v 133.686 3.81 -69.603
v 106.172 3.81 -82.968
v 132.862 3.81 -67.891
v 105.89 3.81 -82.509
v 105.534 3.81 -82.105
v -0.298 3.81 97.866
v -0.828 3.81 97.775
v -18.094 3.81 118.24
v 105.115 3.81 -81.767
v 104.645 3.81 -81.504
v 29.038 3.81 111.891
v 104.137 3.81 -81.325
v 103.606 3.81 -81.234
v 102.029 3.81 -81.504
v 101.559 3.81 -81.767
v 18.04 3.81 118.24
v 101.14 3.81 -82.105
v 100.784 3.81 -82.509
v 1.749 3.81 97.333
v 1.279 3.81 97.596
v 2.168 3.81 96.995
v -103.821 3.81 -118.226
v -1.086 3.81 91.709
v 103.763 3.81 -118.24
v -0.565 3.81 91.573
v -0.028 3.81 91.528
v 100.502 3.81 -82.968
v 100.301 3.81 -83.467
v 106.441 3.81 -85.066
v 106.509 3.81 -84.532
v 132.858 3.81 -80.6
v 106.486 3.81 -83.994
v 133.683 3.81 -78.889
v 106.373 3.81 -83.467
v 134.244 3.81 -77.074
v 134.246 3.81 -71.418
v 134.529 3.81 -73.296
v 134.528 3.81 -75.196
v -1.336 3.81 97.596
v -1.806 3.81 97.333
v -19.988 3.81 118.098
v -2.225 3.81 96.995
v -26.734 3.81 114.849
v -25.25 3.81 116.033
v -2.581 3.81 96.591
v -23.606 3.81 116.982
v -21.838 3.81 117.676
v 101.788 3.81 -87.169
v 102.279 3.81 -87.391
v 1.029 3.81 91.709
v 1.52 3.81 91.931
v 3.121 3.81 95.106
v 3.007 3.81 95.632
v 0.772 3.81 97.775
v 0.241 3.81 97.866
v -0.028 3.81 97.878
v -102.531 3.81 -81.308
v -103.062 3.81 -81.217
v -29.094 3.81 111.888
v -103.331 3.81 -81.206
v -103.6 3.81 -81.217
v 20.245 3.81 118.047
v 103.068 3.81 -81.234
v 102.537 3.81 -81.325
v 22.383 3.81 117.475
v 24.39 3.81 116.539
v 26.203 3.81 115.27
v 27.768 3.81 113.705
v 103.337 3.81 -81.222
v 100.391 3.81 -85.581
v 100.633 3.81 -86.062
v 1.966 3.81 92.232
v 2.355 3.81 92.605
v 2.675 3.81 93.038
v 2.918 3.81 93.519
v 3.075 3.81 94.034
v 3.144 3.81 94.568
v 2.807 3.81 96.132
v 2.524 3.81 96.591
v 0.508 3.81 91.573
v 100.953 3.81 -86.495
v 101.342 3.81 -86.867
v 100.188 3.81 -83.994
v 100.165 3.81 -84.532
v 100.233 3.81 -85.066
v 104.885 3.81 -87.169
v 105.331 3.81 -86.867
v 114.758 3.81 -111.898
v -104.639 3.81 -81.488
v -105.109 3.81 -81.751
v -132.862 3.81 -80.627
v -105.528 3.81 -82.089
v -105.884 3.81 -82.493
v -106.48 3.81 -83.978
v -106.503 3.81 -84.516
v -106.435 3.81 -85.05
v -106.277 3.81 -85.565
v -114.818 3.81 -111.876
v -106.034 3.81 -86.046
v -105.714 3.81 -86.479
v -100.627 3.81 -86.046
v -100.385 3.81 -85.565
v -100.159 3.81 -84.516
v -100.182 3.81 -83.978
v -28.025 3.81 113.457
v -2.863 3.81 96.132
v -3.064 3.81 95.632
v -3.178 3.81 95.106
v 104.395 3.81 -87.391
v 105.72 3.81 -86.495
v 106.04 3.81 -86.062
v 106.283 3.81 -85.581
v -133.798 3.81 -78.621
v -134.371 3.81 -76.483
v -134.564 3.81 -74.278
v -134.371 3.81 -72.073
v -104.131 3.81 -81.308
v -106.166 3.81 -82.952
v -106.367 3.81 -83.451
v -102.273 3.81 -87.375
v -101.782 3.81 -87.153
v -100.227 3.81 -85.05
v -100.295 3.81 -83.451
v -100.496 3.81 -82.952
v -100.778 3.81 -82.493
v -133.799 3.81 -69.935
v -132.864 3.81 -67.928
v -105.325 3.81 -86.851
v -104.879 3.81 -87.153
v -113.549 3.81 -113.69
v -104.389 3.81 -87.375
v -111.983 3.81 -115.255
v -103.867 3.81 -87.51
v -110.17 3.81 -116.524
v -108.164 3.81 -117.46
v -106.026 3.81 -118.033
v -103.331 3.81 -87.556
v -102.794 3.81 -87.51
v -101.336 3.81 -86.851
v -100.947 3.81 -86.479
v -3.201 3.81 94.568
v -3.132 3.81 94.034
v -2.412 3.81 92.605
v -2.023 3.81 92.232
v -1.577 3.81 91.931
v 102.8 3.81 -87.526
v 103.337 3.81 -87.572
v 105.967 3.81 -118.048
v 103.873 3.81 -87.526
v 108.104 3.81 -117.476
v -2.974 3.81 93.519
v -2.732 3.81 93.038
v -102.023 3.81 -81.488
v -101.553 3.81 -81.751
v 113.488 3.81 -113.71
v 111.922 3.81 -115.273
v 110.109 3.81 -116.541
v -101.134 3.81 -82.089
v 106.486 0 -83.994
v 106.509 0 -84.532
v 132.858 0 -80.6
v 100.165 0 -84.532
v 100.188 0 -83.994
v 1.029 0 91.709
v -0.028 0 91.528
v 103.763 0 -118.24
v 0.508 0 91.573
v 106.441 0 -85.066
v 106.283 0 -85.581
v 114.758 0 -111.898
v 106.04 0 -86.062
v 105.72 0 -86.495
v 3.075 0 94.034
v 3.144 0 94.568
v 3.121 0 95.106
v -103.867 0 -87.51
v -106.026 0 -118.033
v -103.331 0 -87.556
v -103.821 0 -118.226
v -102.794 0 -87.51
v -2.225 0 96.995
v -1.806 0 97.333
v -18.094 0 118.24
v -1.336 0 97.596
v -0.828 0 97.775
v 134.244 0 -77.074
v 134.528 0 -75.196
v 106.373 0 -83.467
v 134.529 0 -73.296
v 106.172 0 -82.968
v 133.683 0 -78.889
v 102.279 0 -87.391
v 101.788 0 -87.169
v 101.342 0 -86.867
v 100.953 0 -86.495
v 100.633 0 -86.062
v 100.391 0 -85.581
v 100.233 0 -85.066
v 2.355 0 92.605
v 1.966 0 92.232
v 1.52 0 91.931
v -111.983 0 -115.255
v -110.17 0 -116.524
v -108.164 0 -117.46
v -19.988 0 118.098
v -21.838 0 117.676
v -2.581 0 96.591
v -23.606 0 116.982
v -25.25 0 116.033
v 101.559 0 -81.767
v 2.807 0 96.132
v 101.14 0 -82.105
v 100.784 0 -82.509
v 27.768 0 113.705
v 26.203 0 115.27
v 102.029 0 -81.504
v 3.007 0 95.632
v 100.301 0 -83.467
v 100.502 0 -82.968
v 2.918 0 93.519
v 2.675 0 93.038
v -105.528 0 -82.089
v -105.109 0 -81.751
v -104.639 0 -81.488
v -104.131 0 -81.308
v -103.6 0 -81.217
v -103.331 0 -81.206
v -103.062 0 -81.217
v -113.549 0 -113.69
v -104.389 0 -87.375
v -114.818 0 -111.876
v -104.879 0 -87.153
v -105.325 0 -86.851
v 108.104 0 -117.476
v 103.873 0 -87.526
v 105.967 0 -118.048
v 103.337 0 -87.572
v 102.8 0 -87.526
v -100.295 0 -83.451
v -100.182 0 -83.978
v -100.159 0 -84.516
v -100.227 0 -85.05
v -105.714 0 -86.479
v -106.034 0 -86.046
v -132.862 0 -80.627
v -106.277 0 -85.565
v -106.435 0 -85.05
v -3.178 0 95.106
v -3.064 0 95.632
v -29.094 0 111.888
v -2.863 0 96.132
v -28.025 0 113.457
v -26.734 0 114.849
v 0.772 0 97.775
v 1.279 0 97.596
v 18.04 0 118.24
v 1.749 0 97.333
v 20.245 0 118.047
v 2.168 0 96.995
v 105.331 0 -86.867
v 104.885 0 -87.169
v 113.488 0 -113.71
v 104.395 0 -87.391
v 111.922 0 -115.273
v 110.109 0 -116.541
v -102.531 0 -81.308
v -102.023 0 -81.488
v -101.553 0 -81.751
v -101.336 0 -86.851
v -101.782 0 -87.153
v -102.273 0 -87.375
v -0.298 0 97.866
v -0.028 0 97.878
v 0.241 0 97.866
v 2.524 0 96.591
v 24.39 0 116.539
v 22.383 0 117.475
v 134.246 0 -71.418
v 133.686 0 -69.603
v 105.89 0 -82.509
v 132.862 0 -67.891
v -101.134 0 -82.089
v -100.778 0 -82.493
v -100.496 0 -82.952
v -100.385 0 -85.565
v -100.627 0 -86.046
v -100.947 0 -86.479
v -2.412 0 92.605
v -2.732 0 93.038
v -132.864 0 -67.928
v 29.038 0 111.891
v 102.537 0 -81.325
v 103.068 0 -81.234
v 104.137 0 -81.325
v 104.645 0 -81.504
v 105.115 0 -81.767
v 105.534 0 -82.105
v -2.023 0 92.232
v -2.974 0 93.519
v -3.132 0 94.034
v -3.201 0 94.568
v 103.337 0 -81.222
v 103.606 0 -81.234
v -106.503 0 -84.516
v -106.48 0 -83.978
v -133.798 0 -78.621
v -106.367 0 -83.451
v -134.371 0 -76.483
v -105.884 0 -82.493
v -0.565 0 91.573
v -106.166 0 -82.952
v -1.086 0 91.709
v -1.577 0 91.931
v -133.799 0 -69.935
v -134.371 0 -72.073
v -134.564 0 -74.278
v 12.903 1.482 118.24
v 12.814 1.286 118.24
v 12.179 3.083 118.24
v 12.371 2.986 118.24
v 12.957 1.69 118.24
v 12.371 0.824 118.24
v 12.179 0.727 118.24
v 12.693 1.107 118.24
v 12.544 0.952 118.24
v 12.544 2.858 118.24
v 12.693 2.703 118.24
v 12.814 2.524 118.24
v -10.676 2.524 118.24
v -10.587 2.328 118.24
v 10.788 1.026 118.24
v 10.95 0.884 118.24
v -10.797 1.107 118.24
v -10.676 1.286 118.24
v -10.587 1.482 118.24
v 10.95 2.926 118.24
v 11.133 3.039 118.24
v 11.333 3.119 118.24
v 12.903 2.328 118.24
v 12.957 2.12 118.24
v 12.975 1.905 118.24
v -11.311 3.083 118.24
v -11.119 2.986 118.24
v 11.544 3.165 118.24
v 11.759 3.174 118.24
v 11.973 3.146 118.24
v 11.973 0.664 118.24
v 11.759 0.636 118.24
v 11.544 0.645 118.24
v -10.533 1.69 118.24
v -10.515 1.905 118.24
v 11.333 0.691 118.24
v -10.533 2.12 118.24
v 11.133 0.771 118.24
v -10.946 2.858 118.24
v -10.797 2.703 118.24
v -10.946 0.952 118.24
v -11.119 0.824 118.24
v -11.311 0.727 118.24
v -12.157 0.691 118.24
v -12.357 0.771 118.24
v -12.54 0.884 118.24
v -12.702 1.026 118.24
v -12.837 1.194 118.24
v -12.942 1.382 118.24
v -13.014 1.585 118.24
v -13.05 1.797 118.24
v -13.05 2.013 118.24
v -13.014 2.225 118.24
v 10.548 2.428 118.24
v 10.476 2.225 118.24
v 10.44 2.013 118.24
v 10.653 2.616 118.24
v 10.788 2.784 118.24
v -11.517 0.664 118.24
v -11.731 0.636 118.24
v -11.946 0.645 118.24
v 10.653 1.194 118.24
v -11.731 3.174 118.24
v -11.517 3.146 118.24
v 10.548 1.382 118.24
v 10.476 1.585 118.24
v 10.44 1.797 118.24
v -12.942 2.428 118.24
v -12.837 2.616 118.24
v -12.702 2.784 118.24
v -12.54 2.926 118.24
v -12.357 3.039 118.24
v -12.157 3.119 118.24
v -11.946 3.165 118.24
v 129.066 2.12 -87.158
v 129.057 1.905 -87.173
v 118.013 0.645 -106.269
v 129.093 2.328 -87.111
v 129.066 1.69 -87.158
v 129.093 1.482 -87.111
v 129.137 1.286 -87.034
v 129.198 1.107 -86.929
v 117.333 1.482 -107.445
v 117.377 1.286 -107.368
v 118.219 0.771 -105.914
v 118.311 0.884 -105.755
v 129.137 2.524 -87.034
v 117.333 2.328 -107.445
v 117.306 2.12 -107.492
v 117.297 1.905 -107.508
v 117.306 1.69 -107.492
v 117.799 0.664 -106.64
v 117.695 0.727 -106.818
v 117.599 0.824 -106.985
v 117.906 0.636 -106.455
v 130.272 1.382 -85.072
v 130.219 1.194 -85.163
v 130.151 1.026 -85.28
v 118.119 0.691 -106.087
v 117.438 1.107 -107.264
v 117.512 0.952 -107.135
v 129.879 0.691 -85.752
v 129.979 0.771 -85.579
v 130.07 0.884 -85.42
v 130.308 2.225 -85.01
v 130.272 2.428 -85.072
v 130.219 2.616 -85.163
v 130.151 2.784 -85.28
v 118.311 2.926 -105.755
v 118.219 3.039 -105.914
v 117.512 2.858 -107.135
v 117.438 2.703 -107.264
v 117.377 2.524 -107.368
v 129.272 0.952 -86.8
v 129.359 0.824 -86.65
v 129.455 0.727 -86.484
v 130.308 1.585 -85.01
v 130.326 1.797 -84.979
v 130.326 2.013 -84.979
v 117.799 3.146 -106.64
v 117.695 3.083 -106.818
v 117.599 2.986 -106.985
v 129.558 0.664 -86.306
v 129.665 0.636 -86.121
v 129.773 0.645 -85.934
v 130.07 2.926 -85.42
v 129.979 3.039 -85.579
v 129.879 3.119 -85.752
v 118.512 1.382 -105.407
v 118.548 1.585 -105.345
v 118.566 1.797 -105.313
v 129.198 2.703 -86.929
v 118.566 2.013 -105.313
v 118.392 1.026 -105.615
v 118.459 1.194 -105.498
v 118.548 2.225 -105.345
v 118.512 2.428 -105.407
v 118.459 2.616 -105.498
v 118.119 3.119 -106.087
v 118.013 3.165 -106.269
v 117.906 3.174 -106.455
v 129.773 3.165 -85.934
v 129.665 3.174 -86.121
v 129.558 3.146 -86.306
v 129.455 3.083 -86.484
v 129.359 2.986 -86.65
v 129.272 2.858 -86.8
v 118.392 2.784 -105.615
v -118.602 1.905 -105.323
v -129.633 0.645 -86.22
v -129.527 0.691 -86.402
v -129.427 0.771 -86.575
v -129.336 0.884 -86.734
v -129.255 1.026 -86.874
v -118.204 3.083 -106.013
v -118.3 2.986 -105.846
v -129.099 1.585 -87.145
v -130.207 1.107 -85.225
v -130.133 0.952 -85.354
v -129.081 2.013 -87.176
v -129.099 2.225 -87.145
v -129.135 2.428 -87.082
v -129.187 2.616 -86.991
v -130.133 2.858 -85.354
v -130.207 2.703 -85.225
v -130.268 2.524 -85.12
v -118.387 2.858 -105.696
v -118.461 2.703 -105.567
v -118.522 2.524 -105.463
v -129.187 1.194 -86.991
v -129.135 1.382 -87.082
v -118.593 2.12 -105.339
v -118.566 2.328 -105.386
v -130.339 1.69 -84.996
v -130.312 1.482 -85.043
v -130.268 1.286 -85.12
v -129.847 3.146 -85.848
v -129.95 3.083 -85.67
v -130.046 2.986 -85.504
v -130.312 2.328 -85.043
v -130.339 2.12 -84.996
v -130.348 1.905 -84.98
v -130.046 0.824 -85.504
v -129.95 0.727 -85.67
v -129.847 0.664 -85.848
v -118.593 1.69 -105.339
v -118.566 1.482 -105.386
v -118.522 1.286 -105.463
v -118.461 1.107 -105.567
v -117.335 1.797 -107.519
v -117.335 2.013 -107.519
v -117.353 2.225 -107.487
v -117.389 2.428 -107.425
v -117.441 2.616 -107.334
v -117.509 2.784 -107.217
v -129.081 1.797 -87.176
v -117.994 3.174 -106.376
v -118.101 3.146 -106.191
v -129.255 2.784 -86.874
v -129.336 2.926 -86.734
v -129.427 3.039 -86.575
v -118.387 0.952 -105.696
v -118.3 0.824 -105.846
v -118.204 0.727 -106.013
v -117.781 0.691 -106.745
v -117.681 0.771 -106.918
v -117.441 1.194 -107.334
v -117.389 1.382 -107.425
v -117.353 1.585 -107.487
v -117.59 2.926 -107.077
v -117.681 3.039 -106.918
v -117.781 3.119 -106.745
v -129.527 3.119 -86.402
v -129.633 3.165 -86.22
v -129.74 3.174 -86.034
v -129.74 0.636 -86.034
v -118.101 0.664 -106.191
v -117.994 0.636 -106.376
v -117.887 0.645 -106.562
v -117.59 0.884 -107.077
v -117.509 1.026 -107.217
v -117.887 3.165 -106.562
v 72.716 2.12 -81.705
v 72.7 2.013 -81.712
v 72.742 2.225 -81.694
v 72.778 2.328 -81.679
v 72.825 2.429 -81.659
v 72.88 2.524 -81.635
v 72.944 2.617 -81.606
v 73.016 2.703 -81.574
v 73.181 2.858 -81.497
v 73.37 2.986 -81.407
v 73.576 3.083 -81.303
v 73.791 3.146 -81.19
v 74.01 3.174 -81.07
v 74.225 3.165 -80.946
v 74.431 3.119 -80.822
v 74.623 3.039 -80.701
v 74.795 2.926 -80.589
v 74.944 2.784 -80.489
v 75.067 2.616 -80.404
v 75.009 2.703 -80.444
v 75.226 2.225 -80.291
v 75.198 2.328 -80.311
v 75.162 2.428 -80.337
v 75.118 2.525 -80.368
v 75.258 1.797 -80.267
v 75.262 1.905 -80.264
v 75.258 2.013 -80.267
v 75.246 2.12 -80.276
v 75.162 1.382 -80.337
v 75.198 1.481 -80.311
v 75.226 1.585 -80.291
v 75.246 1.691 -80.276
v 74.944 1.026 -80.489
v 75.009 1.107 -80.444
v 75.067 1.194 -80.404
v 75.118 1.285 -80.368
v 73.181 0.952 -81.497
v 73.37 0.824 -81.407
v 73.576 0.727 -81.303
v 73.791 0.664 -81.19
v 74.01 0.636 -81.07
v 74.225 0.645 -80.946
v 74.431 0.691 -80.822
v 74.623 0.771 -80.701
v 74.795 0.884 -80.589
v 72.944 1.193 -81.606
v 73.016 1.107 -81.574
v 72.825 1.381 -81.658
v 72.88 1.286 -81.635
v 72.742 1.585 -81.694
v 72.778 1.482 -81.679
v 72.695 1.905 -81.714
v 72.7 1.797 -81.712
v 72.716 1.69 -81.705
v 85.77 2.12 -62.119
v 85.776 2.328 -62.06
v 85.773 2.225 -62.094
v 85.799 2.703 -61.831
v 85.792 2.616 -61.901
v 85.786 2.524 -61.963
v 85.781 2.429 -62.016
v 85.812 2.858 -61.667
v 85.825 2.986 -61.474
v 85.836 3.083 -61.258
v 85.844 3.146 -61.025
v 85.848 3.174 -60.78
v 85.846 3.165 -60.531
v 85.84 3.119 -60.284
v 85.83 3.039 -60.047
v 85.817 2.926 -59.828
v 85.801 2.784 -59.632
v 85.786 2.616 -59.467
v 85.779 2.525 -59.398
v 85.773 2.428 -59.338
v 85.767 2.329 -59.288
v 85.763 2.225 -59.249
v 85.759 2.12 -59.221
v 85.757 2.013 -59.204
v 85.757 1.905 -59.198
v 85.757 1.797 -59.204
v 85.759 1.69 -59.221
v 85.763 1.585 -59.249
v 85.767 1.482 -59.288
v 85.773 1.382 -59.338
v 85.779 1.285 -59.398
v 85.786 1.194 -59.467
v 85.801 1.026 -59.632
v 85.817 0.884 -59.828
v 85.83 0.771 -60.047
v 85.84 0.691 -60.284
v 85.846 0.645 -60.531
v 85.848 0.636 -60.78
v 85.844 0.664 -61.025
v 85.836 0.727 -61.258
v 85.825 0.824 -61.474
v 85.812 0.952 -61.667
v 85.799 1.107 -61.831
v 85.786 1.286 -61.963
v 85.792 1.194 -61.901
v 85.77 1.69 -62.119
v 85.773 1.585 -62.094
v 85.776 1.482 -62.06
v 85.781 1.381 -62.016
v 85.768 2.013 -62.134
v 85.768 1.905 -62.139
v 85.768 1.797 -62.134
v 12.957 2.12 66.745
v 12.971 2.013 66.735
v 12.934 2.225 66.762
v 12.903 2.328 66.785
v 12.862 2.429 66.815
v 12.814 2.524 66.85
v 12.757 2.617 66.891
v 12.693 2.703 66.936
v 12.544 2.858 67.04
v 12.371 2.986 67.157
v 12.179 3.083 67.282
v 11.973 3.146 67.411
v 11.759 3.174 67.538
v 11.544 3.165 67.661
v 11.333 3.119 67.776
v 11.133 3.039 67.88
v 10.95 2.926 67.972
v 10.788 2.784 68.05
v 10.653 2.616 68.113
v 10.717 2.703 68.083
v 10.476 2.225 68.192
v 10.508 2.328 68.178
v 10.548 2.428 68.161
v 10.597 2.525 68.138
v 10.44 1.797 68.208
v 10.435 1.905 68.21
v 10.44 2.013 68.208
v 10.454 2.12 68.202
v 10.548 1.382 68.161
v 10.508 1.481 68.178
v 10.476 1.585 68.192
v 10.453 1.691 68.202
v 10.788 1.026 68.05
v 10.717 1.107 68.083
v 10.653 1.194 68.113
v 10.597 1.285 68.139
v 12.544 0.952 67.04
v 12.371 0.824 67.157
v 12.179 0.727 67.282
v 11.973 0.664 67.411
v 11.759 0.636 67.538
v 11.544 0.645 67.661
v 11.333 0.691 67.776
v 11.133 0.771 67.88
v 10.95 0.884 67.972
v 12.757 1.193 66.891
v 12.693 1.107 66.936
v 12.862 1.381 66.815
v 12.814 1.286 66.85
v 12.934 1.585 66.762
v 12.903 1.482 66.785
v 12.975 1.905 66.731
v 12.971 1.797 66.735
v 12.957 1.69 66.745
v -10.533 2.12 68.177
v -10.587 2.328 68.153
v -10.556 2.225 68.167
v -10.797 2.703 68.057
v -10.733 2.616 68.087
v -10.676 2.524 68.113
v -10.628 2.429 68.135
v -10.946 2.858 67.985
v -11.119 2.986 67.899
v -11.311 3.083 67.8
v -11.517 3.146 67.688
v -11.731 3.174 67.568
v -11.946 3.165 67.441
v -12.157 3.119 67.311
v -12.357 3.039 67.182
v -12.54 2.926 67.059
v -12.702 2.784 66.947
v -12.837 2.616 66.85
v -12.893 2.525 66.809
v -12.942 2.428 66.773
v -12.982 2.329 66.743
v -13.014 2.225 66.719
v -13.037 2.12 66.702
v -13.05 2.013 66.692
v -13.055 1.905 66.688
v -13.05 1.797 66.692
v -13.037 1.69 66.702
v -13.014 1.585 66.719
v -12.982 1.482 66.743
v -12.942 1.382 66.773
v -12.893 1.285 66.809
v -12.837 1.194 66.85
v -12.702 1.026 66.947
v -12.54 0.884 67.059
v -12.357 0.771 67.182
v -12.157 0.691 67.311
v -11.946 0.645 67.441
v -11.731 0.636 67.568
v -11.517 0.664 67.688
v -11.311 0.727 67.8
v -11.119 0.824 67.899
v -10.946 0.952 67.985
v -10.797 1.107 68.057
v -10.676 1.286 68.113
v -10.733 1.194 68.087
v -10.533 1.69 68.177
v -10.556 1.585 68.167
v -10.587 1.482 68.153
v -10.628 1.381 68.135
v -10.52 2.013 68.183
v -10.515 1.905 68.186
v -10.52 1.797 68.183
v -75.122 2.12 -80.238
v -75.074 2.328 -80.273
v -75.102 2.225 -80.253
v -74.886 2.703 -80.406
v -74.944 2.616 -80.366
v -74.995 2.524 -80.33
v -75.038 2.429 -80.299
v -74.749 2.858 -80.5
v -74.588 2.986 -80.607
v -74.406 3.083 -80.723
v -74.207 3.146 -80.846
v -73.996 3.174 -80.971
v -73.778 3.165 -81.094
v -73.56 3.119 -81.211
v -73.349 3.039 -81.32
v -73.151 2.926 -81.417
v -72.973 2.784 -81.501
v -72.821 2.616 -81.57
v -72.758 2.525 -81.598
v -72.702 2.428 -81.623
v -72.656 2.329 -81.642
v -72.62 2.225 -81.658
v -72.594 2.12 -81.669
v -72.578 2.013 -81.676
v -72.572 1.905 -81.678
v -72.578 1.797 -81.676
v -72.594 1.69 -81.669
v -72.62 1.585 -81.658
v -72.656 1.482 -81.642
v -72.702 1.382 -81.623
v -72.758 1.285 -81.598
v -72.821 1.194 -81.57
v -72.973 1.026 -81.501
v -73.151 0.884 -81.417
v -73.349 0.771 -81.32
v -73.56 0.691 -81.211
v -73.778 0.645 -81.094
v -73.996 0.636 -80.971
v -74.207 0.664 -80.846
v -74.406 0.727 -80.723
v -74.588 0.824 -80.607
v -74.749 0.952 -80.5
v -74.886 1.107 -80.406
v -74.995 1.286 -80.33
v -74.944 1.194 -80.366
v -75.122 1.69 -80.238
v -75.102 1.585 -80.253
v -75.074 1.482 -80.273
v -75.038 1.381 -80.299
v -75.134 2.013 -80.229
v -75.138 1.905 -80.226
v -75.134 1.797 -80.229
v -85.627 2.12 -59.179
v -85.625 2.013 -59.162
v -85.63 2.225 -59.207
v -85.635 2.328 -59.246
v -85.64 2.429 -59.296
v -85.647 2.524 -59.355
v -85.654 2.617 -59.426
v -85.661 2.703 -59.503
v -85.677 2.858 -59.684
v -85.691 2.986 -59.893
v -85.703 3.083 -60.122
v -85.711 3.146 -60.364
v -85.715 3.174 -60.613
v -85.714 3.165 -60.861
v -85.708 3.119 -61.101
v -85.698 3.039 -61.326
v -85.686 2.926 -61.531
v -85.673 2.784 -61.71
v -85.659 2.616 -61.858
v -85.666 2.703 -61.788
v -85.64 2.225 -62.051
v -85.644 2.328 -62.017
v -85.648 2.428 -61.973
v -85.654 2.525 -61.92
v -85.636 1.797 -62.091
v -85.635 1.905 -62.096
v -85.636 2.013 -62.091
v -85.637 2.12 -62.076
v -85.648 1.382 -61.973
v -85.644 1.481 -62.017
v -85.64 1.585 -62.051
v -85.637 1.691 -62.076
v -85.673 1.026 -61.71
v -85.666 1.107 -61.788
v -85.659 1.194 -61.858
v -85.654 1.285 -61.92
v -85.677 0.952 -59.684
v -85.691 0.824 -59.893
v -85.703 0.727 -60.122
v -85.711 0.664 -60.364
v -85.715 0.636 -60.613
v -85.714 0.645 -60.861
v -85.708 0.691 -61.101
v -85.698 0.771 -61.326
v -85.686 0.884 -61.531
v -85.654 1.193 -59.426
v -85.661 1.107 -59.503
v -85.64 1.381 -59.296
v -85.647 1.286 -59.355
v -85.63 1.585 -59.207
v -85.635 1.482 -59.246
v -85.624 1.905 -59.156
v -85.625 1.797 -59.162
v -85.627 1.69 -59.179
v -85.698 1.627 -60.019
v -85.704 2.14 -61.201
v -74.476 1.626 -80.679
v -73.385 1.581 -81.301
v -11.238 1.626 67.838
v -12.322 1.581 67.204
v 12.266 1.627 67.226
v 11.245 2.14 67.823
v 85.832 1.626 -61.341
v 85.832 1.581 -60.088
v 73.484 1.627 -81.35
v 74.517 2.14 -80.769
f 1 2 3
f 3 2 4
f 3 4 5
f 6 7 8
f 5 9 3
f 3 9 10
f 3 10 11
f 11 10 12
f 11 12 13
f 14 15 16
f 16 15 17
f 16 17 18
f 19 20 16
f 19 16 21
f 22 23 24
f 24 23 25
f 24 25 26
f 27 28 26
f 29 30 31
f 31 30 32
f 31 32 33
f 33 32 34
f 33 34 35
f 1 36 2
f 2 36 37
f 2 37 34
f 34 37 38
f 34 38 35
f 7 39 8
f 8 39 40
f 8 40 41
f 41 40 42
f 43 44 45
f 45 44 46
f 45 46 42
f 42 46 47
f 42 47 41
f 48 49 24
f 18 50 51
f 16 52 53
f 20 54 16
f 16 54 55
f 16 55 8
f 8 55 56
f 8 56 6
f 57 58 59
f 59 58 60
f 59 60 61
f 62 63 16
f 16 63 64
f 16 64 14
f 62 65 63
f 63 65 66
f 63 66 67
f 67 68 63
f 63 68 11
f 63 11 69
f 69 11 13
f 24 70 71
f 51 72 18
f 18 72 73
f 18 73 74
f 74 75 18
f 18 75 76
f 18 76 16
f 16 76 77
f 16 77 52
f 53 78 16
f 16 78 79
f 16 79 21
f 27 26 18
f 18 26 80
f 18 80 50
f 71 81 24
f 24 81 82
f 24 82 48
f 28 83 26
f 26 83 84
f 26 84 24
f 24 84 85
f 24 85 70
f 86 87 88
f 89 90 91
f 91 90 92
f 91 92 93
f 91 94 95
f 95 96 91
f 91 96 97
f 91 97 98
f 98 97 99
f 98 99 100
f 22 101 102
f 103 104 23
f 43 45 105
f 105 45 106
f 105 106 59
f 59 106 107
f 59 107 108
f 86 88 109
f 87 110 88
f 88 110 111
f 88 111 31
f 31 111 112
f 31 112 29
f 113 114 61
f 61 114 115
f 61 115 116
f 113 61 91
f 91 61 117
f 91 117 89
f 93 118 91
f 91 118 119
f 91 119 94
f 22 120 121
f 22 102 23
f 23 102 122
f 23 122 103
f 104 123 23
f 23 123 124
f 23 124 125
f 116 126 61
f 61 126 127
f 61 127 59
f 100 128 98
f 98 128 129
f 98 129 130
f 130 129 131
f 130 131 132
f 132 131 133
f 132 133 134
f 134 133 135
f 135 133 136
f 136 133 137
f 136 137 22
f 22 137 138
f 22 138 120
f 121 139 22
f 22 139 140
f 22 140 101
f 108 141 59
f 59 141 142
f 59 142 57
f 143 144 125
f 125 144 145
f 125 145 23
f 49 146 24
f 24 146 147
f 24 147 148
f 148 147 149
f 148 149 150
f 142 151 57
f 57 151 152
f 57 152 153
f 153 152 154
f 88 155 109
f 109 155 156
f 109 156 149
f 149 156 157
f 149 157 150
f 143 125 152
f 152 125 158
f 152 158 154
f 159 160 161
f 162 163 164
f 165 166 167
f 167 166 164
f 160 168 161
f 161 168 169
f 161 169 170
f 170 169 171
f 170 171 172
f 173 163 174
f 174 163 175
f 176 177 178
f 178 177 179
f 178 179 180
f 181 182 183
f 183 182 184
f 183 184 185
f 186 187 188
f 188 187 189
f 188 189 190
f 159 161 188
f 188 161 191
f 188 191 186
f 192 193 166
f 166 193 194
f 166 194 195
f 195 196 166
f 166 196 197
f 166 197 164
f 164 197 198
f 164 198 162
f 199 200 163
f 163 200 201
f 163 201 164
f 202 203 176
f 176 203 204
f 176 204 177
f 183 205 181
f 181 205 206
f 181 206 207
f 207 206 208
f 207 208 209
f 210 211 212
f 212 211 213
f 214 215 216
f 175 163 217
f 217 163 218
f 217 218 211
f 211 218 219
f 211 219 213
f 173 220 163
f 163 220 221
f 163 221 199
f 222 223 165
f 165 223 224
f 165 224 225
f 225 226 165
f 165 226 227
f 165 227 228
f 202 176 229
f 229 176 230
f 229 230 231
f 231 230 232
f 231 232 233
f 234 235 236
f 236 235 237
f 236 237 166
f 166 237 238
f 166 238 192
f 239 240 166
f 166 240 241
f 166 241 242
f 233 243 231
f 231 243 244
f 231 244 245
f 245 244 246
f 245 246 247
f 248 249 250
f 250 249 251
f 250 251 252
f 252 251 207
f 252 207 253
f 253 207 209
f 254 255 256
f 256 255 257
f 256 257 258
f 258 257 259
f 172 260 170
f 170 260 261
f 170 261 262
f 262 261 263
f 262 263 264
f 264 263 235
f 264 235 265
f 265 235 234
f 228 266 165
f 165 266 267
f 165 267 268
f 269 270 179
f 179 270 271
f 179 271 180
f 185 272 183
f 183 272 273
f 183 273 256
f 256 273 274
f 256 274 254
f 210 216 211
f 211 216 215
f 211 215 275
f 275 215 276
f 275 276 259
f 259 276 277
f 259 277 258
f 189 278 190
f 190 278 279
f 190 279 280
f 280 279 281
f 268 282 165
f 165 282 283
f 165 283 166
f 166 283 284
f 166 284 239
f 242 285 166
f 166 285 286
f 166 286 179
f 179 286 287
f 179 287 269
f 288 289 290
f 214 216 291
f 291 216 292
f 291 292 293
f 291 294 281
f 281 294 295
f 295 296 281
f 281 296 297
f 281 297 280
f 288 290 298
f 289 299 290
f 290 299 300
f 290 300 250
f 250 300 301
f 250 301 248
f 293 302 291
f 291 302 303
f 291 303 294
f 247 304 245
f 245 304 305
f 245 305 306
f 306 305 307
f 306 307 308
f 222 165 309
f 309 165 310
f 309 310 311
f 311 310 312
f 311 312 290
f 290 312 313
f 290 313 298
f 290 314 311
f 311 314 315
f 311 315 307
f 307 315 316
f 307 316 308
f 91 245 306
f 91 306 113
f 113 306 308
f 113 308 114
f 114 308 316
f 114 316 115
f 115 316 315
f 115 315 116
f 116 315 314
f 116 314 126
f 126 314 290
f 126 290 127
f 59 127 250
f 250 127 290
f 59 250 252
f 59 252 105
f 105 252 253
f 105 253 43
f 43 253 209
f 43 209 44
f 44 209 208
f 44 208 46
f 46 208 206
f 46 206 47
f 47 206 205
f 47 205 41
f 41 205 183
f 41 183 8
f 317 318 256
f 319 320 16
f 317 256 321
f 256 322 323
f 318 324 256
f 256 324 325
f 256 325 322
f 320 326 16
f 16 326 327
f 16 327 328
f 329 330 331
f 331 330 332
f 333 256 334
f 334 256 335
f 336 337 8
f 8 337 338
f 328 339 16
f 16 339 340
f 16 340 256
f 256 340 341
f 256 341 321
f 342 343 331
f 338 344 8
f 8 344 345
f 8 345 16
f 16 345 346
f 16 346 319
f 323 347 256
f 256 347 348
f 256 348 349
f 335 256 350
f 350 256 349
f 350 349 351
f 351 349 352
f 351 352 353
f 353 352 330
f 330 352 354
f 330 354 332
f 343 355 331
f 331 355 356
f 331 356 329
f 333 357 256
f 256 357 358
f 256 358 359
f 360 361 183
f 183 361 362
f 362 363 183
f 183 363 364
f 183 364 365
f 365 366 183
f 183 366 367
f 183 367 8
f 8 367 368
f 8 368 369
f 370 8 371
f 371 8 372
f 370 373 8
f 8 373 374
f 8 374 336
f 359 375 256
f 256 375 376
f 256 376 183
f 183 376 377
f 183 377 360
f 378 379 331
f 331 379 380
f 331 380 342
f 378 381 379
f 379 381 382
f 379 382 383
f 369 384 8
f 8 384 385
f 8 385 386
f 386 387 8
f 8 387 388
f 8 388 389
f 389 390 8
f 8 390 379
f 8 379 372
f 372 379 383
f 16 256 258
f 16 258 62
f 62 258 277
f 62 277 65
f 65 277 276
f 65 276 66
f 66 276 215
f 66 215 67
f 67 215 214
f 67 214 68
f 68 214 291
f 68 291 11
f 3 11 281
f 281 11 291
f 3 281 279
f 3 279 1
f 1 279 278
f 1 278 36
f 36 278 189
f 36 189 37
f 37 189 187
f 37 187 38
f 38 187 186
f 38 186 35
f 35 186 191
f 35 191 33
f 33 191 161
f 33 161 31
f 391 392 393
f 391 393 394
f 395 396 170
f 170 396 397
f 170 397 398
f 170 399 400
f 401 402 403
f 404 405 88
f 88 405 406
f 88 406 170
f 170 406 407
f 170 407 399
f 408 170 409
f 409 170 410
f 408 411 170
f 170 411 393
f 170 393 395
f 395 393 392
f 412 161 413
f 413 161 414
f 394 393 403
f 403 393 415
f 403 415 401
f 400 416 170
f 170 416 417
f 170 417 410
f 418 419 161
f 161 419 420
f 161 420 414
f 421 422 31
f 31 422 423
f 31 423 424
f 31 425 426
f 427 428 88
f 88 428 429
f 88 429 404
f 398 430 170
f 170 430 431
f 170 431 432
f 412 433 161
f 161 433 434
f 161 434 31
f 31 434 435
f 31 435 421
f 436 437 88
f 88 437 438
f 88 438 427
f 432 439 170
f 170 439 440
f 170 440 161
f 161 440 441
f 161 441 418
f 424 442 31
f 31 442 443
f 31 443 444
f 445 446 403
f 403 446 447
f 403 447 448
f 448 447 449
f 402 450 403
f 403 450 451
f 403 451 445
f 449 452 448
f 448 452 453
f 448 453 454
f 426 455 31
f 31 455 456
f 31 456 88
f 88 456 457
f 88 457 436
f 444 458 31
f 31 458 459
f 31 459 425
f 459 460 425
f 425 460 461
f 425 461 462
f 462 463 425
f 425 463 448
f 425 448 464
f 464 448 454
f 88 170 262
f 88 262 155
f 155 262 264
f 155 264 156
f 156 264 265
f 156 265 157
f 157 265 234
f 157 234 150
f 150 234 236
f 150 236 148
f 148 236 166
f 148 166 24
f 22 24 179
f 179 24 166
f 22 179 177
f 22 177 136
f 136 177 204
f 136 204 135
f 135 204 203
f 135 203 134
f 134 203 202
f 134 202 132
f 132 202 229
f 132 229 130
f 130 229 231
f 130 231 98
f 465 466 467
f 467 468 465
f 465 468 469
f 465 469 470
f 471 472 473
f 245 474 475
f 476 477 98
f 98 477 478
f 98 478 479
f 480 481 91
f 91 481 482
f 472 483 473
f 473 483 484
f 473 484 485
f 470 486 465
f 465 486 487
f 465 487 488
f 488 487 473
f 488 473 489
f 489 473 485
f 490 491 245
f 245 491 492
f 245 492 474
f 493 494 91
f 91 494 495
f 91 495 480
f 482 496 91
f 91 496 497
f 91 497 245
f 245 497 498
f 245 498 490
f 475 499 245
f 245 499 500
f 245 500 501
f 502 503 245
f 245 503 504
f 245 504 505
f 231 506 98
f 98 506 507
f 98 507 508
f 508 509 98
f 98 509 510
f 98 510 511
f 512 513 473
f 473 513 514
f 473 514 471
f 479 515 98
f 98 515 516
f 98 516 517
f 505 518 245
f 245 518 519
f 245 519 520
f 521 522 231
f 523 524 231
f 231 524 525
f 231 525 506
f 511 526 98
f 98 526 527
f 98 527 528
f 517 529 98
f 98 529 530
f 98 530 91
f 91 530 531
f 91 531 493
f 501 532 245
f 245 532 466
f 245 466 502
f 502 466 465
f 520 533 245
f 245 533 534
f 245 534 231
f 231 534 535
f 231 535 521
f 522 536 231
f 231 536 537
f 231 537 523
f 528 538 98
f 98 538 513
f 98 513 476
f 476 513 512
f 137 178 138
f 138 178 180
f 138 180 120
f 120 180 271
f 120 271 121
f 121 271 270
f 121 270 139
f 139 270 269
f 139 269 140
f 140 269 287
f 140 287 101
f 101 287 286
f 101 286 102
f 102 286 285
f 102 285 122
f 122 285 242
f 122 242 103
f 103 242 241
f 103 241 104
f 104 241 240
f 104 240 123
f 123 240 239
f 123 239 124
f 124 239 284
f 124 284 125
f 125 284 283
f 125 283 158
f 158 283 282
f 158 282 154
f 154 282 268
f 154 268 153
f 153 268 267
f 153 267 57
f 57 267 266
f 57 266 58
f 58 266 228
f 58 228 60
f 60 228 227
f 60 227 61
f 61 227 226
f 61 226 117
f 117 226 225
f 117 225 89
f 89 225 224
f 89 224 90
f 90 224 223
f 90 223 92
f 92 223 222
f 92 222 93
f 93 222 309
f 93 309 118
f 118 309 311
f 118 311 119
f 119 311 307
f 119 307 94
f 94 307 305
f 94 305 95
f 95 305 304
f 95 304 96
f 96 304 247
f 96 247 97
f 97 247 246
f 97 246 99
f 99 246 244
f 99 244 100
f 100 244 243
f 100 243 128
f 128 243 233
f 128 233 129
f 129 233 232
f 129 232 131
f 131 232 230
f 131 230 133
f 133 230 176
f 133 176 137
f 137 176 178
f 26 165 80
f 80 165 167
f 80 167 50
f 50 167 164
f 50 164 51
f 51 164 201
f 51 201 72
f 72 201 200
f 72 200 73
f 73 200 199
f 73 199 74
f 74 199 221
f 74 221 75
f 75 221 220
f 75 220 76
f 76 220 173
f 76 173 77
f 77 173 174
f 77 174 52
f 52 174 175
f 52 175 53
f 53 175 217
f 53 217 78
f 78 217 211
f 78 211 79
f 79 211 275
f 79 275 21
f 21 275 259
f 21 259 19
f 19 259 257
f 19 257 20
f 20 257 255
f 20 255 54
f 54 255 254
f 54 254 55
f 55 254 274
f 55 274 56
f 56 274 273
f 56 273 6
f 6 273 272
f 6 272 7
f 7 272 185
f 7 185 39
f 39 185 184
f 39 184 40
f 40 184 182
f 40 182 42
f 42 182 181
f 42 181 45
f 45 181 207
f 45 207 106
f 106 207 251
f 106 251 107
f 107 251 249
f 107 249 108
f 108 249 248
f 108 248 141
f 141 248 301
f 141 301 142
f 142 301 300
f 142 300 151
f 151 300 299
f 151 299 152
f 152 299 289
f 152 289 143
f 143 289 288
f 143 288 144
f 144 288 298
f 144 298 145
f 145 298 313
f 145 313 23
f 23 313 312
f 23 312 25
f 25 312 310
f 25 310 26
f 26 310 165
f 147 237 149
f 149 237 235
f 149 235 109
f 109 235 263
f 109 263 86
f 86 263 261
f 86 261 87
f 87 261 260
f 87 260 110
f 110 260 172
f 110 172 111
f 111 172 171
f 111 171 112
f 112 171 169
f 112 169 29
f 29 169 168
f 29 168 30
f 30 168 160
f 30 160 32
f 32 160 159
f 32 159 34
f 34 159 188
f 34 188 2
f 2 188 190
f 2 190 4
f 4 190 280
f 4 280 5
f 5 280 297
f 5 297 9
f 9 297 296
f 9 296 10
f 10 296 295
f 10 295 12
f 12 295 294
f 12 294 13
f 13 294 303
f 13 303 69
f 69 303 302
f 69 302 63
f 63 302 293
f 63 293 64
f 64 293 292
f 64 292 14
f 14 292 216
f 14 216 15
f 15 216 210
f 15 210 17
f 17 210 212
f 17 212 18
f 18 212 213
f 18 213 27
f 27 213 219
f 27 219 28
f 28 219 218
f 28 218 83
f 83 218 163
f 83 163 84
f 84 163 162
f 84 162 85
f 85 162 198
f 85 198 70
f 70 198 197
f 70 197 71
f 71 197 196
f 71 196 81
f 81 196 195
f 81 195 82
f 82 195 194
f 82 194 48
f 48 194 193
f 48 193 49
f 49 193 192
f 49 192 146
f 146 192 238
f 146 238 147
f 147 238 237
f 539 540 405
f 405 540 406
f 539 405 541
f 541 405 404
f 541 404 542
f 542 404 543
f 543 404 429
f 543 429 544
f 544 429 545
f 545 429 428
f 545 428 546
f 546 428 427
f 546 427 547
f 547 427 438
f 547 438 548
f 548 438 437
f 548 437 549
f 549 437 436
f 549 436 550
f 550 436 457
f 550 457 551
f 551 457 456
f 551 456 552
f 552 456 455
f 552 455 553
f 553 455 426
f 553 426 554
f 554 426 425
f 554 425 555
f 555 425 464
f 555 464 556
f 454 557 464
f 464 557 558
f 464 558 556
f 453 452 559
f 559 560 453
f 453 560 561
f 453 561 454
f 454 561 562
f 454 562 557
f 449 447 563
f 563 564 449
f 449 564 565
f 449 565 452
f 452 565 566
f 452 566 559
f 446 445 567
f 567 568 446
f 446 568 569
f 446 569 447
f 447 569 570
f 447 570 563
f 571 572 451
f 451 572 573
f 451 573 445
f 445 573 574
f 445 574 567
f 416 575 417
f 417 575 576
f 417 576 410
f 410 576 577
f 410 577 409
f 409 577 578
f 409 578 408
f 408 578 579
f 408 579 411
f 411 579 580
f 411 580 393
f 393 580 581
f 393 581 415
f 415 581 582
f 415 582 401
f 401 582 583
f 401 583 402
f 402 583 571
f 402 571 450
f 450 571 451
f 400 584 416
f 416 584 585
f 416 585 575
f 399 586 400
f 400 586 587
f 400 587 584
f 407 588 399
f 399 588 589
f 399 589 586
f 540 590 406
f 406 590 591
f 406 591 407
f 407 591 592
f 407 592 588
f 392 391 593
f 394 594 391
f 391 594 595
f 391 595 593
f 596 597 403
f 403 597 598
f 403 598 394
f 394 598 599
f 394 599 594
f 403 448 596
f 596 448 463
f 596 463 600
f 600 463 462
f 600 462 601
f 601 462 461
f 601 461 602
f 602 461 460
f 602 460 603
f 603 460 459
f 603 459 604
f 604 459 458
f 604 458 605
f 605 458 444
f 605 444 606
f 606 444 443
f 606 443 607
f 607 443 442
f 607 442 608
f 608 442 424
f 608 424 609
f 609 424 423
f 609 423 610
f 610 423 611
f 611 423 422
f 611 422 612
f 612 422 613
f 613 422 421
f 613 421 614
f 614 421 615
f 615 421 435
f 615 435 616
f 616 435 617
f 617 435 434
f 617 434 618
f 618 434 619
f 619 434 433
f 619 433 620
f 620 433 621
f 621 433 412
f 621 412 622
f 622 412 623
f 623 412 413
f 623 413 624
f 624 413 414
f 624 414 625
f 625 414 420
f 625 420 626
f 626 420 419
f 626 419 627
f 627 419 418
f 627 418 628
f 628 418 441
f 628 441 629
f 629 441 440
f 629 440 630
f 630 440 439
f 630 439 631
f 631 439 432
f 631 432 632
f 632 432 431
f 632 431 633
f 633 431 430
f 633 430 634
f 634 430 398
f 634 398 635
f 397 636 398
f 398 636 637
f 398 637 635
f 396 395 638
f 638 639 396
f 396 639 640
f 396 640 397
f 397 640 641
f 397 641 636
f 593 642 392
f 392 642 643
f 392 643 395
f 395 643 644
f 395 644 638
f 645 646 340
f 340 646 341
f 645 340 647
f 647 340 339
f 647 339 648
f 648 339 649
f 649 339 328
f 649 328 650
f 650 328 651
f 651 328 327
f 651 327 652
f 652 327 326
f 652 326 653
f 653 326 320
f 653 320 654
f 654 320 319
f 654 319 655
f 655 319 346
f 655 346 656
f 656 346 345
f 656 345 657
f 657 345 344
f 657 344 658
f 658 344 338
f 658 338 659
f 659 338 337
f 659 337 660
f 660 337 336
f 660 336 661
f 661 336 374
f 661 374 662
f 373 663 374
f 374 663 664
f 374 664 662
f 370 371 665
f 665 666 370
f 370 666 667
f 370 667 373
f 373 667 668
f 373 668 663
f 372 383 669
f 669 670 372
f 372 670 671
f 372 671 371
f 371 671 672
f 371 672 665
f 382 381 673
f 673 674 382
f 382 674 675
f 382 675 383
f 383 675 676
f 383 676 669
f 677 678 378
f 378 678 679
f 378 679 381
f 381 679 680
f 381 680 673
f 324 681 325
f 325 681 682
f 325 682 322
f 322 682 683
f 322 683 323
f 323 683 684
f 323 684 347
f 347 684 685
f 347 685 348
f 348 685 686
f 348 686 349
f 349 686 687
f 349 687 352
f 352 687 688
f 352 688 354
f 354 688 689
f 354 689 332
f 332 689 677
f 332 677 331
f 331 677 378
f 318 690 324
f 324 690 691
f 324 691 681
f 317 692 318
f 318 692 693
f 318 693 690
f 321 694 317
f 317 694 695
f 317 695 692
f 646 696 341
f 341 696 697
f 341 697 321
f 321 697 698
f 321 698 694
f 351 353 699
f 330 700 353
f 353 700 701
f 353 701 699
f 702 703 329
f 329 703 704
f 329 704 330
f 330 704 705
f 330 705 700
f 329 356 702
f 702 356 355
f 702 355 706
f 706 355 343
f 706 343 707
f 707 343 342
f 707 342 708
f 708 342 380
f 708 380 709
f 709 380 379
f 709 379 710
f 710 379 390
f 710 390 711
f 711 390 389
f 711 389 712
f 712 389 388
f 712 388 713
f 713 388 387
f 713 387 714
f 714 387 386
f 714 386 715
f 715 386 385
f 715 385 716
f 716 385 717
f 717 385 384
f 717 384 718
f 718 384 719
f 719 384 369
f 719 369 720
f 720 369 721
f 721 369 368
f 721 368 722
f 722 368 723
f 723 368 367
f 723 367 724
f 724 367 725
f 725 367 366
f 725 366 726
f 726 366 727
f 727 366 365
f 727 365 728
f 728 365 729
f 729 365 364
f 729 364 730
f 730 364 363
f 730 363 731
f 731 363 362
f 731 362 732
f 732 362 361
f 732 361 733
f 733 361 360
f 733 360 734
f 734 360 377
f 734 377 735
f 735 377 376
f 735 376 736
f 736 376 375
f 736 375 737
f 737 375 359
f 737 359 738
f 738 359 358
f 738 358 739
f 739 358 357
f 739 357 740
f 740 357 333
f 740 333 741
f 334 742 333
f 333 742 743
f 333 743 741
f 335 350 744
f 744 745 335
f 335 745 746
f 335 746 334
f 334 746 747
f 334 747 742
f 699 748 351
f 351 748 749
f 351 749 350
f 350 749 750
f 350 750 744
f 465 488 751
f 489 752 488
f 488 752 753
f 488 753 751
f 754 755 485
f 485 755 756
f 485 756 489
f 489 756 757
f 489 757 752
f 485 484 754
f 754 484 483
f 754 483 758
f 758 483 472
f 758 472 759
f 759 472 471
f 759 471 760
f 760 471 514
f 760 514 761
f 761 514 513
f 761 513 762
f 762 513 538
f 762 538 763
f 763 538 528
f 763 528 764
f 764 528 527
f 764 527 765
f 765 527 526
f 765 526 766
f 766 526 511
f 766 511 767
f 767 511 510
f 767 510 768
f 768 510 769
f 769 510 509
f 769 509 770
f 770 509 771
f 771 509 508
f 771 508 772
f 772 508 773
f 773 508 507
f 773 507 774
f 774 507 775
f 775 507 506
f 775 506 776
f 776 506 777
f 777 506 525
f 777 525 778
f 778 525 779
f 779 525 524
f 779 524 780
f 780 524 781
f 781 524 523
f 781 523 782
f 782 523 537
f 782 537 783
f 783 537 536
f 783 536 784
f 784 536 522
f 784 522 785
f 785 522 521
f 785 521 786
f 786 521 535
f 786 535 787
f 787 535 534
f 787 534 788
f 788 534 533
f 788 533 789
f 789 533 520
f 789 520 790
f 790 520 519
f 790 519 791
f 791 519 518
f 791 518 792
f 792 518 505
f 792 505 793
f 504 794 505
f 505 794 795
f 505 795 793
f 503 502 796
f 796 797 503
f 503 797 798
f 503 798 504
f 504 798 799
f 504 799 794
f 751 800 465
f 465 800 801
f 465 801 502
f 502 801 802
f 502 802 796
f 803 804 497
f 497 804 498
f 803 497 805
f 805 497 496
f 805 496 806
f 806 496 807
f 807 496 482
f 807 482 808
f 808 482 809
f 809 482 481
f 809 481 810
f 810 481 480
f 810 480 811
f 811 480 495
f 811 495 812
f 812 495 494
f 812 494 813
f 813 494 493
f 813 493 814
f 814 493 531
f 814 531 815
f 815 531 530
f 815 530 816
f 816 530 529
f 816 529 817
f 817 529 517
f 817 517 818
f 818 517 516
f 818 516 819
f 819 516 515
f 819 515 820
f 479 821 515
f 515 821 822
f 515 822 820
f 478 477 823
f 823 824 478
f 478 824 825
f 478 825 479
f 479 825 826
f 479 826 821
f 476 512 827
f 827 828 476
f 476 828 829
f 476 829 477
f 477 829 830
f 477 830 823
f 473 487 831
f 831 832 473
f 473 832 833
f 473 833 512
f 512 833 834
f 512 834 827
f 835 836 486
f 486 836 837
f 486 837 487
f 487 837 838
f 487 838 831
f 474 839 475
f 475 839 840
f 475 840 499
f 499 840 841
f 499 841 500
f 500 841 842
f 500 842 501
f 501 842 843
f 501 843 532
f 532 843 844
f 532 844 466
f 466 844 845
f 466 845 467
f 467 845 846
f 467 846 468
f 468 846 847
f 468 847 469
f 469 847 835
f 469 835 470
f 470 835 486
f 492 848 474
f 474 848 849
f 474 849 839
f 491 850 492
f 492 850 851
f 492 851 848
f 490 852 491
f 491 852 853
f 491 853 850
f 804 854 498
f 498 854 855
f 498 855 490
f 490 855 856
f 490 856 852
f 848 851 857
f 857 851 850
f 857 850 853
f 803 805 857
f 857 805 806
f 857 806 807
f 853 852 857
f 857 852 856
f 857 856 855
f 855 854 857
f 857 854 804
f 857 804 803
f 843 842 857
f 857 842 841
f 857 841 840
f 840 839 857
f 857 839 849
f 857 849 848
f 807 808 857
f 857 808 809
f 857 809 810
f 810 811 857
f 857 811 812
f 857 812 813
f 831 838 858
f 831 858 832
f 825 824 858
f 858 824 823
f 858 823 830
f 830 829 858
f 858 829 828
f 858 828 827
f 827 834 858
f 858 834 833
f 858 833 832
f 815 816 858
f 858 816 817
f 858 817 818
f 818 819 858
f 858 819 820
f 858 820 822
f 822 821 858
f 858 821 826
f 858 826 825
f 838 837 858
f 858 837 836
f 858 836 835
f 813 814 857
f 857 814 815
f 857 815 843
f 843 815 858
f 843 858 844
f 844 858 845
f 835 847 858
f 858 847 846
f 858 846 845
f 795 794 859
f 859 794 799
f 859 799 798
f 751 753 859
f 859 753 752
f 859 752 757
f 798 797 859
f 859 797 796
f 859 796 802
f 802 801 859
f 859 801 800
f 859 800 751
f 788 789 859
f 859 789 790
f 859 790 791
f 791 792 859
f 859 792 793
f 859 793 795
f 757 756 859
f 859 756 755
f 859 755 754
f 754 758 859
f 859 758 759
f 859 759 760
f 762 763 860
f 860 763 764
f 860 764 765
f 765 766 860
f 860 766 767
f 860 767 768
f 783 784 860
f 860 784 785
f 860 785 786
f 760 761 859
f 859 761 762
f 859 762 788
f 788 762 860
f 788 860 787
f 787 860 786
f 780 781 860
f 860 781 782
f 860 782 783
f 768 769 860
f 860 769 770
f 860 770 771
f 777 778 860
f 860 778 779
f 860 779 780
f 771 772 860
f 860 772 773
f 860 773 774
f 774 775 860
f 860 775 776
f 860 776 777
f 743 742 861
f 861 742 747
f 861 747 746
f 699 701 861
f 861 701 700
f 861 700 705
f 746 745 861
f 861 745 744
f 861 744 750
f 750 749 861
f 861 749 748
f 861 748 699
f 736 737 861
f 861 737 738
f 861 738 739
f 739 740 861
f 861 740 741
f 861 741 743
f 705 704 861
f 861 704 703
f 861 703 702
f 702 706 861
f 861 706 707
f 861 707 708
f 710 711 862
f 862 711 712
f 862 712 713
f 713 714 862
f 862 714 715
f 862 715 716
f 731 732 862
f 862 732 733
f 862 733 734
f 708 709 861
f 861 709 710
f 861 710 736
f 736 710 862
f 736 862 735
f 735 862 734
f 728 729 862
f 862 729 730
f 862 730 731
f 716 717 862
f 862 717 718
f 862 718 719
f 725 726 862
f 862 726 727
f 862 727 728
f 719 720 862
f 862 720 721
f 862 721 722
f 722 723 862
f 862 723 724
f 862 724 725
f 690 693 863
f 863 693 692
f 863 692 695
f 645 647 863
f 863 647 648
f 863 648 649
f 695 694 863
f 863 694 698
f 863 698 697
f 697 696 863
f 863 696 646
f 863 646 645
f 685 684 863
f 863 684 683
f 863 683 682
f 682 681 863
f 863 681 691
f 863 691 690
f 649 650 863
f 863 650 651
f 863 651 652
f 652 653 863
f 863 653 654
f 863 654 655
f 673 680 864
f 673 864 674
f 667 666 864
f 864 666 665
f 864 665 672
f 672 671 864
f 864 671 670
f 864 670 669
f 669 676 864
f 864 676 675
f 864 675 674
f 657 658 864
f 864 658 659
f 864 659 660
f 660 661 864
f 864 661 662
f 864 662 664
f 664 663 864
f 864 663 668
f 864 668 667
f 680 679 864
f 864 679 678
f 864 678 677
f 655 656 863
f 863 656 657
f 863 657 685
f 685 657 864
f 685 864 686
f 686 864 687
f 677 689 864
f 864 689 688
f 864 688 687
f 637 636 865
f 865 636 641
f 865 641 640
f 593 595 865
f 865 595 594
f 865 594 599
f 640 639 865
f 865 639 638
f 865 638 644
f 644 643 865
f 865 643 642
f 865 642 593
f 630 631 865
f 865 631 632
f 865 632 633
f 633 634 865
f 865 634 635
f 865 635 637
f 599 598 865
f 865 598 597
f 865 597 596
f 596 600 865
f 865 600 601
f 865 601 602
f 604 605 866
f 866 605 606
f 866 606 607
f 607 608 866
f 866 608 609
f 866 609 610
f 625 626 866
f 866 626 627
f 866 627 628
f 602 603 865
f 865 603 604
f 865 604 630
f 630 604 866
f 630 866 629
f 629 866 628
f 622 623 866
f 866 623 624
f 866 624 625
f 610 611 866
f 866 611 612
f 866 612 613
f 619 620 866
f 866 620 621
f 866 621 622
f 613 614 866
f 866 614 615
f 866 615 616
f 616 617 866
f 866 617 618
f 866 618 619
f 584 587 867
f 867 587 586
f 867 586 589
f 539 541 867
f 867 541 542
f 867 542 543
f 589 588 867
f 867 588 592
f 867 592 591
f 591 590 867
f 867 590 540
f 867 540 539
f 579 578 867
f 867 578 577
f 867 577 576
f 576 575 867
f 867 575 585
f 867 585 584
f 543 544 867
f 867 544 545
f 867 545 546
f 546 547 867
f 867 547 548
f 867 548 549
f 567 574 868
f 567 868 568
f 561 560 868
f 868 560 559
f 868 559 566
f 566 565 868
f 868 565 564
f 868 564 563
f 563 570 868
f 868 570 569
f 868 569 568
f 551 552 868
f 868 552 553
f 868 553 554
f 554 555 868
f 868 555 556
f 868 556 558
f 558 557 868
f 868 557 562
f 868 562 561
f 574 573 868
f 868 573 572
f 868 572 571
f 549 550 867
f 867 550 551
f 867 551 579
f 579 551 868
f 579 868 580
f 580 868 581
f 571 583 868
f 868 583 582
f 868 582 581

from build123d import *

# Parameters (mm, degrees)
SKETCH1_R           = 3.175
BOSS_EXTRUDE1_DEPTH = 3.81
CUT_EXTRUDE1_REACH  = 334.908
SKETCH3_R           = 1.27
CUT_EXTRUDE2_REACH  = 274.112
SKETCH5_R           = 1.27
CUT_EXTRUDE3_REACH  = 334.911
SKETCH6_R           = 1.27
BOSS_EXTRUDE2_DEPTH = 3.81


with BuildPart() as part:
    # Sketch1 → Boss-Extrude1 (new body)
    with BuildSketch(Plane(origin=(0, 0, 0), x_dir=(1, 0, 0), z_dir=(0, 1, 0))):
        with BuildLine():
            Line((-132.862230357, 80.626602679), (-114.818360917, 111.876376892))
            ThreePointArc((-114.818360917, 111.876376892), (-110.170255519, 116.524341207), (-103.82099168, 118.225900714))
            Line((-103.82099168, 118.225900714), (103.762977343, 118.240259528))
            ThreePointArc((103.762977343, 118.240259528), (110.109496385, 116.541297953), (114.757781541, 111.898214981))
            Line((114.757781541, 111.898214981), (132.857908371, 80.600189632))
            ThreePointArc((132.857908371, 80.600189632), (134.563982049, 74.246129937), (132.86180691, 67.891024761))
            Line((132.86180691, 67.891024761), (29.0379736, -111.891469007))
            ThreePointArc((29.0379736, -111.891469007), (24.389544583, -116.539131318), (18.040149336, -118.240259558))
            Line((18.040149336, -118.240259558), (-18.094408415, -118.240259558))
            ThreePointArc((-18.094408415, -118.240259558), (-24.445497205, -116.538153501), (-29.09418809, -111.888081791))
            Line((-29.09418809, -111.888081791), (-132.863762321, 67.928304298))
            ThreePointArc((-132.863762321, 67.928304298), (-134.563982554, 74.277658701), (-132.862230357, 80.626602679))
        make_face()
        with Locations(Location((-103.330851621, 84.381028983, 0), (0, 0, 90))):
            Circle(SKETCH1_R, mode=Mode.SUBTRACT)
        with Locations(Location((-0.028433279, -94.702561062, 0), (0, 0, 90))):
            Circle(SKETCH1_R, mode=Mode.SUBTRACT)
        with Locations(Location((103.336854698, 84.397127461, 0), (0, 0, 90))):
            Circle(SKETCH1_R, mode=Mode.SUBTRACT)
        with BuildLine():
            Line((-84.013266269, 67.022348434), (-78.642736989, 76.323448067))
            ThreePointArc((-78.642736989, 76.323448067), (-73.995553024, 80.970880326), (-67.647495776, 82.672971564))
            Line((-67.647495776, 82.672971564), (67.773359352, 82.705030032))
            ThreePointArc((67.773359352, 82.705030032), (74.121084724, 81.006600385), (78.770291575, 76.36298581))
            Line((78.770291575, 76.36298581), (84.141622987, 67.075091406))
            ThreePointArc((84.141622987, 67.075091406), (85.847697169, 60.718674744), (84.143163353, 54.361844845))
            Line((84.143163353, 54.361844845), (16.352129804, -62.925309178))
            ThreePointArc((16.352129804, -62.925309178), (11.704017593, -67.570067982), (5.356663713, -69.27001804))
            Line((5.356663713, -69.27001804), (-5.379766134, -69.27001804))
            ThreePointArc((-5.379766134, -69.27001804), (-11.731679612, -67.567435699), (-16.380497701, -62.916190507))
            Line((-16.380497701, -62.916190507), (-84.015750126, 54.325699819))
            ThreePointArc((-84.015750126, 54.325699819), (-85.715018316, 60.674356799), (-84.013266269, 67.022348434))
        make_face(mode=Mode.SUBTRACT)
    extrude(amount=BOSS_EXTRUDE1_DEPTH)

    # Sketch3 → Cut-Extrude1 (cut, up to next)
    with BuildSketch(Plane(origin=(134.490180652, 0, -77.777728789), x_dir=(-0.5006264112230908, 0, -0.8656634429071663), z_dir=(0.8656634429071663, 0, -0.5006264112230908)), mode=Mode.PRIVATE) as cut_extrude1_sk1:
        with Locations((9.583713099, 1.905)):
            Circle(SKETCH3_R)
    cut_extrude1_tool1 = extrude(cut_extrude1_sk1.sketch, amount=-CUT_EXTRUDE1_REACH, mode=Mode.PRIVATE) & part.part
    # Sketch3 → Cut-Extrude1 (cut, up to next)
    with BuildSketch(Plane(origin=(134.490180652, 0, -77.777728789), x_dir=(-0.5006264112230908, 0, -0.8656634429071663), z_dir=(0.8656634429071663, 0, -0.5006264112230908)), mode=Mode.PRIVATE) as cut_extrude1_sk2:
        with Locations((33.073860572, 1.905)):
            Circle(SKETCH3_R)
    cut_extrude1_tool2 = extrude(cut_extrude1_sk2.sketch, amount=-CUT_EXTRUDE1_REACH, mode=Mode.PRIVATE) & part.part
    add(cut_extrude1_tool1.solids().sort_by_distance((129.692321, 1.905, -86.073999))[0], mode=Mode.SUBTRACT)
    add(cut_extrude1_tool2.solids().sort_by_distance((117.932533, 1.905, -106.408561))[0], mode=Mode.SUBTRACT)

    # Sketch5 → Cut-Extrude2 (cut, up to next)
    with BuildSketch(Plane.XY.offset(118.240259558), mode=Mode.PRIVATE) as cut_extrude2_sk1:
        with Locations((-11.784935705, 1.905)):
            Circle(SKETCH5_R)
    cut_extrude2_tool1 = extrude(cut_extrude2_sk1.sketch, amount=-CUT_EXTRUDE2_REACH, mode=Mode.PRIVATE) & part.part
    # Sketch5 → Cut-Extrude2 (cut, up to next)
    with BuildSketch(Plane.XY.offset(118.240259558), mode=Mode.PRIVATE) as cut_extrude2_sk2:
        with Locations((11.705218914, 1.905)):
            Circle(SKETCH5_R)
    cut_extrude2_tool2 = extrude(cut_extrude2_sk2.sketch, amount=-CUT_EXTRUDE2_REACH, mode=Mode.PRIVATE) & part.part
    add(cut_extrude2_tool1.solids().sort_by_distance((-11.784936, 1.905, 118.24026))[0], mode=Mode.SUBTRACT)
    add(cut_extrude2_tool2.solids().sort_by_distance((11.705219, 1.905, 118.24026))[0], mode=Mode.SUBTRACT)

    # Sketch6 → Cut-Extrude3 (cut, up to next)
    with BuildSketch(Plane(origin=(-134.555779523, 0, -77.693582727), x_dir=(-0.500037491916206, 0, 0.8660037567344326), z_dir=(-0.8660037567344328, 0, -0.500037491916206)), mode=Mode.PRIVATE) as cut_extrude3_sk1:
        with Locations((-33.174438242, 1.905)):
            Circle(SKETCH6_R)
    cut_extrude3_tool1 = extrude(cut_extrude3_sk1.sketch, amount=-CUT_EXTRUDE3_REACH, mode=Mode.PRIVATE) & part.part
    # Sketch6 → Cut-Extrude3 (cut, up to next)
    with BuildSketch(Plane(origin=(-134.555779523, 0, -77.693582727), x_dir=(-0.500037491916206, 0, 0.8660037567344326), z_dir=(-0.8660037567344328, 0, -0.500037491916206)), mode=Mode.PRIVATE) as cut_extrude3_sk2:
        with Locations((-9.684283586, 1.905)):
            Circle(SKETCH6_R)
    cut_extrude3_tool2 = extrude(cut_extrude3_sk2.sketch, amount=-CUT_EXTRUDE3_REACH, mode=Mode.PRIVATE) & part.part
    add(cut_extrude3_tool1.solids().sort_by_distance((-117.967317, 1.905, -106.422771))[0], mode=Mode.SUBTRACT)
    add(cut_extrude3_tool2.solids().sort_by_distance((-129.713275, 1.905, -86.080209))[0], mode=Mode.SUBTRACT)

    # Sketch7 → Boss-Extrude2 (add)
    with BuildSketch(Plane(origin=(0, 0, 0), x_dir=(1, 0, 0), z_dir=(0, 1, 0))):
        with BuildLine():
            Line((84.141622987, 67.075091406), (78.770291575, 76.36298581))
            ThreePointArc((78.770291575, 76.36298581), (74.121084724, 81.006600385), (67.773359352, 82.705030032))
            Line((67.773359352, 82.705030032), (-67.647495776, 82.672971564))
            ThreePointArc((-67.647495776, 82.672971564), (-73.995553024, 80.970880326), (-78.642736989, 76.323448067))
            Line((-78.642736989, 76.323448067), (-84.013266269, 67.022348434))
            ThreePointArc((-84.013266269, 67.022348434), (-85.715018316, 60.674356799), (-84.015750126, 54.325699819))
            Line((-84.015750126, 54.325699819), (-16.380497701, -62.916190507))
            ThreePointArc((-16.380497701, -62.916190507), (-11.731679612, -67.567435699), (-5.379766134, -69.27001804))
            Line((-5.379766134, -69.27001804), (5.356663713, -69.27001804))
            ThreePointArc((5.356663713, -69.27001804), (11.704017593, -67.570067982), (16.352129804, -62.925309178))
            Line((16.352129804, -62.925309178), (84.143163353, 54.361844845))
            ThreePointArc((84.143163353, 54.361844845), (85.847697169, 60.718674744), (84.141622987, 67.075091406))
        make_face()
    extrude(amount=BOSS_EXTRUDE2_DEPTH)


solid = part.part
